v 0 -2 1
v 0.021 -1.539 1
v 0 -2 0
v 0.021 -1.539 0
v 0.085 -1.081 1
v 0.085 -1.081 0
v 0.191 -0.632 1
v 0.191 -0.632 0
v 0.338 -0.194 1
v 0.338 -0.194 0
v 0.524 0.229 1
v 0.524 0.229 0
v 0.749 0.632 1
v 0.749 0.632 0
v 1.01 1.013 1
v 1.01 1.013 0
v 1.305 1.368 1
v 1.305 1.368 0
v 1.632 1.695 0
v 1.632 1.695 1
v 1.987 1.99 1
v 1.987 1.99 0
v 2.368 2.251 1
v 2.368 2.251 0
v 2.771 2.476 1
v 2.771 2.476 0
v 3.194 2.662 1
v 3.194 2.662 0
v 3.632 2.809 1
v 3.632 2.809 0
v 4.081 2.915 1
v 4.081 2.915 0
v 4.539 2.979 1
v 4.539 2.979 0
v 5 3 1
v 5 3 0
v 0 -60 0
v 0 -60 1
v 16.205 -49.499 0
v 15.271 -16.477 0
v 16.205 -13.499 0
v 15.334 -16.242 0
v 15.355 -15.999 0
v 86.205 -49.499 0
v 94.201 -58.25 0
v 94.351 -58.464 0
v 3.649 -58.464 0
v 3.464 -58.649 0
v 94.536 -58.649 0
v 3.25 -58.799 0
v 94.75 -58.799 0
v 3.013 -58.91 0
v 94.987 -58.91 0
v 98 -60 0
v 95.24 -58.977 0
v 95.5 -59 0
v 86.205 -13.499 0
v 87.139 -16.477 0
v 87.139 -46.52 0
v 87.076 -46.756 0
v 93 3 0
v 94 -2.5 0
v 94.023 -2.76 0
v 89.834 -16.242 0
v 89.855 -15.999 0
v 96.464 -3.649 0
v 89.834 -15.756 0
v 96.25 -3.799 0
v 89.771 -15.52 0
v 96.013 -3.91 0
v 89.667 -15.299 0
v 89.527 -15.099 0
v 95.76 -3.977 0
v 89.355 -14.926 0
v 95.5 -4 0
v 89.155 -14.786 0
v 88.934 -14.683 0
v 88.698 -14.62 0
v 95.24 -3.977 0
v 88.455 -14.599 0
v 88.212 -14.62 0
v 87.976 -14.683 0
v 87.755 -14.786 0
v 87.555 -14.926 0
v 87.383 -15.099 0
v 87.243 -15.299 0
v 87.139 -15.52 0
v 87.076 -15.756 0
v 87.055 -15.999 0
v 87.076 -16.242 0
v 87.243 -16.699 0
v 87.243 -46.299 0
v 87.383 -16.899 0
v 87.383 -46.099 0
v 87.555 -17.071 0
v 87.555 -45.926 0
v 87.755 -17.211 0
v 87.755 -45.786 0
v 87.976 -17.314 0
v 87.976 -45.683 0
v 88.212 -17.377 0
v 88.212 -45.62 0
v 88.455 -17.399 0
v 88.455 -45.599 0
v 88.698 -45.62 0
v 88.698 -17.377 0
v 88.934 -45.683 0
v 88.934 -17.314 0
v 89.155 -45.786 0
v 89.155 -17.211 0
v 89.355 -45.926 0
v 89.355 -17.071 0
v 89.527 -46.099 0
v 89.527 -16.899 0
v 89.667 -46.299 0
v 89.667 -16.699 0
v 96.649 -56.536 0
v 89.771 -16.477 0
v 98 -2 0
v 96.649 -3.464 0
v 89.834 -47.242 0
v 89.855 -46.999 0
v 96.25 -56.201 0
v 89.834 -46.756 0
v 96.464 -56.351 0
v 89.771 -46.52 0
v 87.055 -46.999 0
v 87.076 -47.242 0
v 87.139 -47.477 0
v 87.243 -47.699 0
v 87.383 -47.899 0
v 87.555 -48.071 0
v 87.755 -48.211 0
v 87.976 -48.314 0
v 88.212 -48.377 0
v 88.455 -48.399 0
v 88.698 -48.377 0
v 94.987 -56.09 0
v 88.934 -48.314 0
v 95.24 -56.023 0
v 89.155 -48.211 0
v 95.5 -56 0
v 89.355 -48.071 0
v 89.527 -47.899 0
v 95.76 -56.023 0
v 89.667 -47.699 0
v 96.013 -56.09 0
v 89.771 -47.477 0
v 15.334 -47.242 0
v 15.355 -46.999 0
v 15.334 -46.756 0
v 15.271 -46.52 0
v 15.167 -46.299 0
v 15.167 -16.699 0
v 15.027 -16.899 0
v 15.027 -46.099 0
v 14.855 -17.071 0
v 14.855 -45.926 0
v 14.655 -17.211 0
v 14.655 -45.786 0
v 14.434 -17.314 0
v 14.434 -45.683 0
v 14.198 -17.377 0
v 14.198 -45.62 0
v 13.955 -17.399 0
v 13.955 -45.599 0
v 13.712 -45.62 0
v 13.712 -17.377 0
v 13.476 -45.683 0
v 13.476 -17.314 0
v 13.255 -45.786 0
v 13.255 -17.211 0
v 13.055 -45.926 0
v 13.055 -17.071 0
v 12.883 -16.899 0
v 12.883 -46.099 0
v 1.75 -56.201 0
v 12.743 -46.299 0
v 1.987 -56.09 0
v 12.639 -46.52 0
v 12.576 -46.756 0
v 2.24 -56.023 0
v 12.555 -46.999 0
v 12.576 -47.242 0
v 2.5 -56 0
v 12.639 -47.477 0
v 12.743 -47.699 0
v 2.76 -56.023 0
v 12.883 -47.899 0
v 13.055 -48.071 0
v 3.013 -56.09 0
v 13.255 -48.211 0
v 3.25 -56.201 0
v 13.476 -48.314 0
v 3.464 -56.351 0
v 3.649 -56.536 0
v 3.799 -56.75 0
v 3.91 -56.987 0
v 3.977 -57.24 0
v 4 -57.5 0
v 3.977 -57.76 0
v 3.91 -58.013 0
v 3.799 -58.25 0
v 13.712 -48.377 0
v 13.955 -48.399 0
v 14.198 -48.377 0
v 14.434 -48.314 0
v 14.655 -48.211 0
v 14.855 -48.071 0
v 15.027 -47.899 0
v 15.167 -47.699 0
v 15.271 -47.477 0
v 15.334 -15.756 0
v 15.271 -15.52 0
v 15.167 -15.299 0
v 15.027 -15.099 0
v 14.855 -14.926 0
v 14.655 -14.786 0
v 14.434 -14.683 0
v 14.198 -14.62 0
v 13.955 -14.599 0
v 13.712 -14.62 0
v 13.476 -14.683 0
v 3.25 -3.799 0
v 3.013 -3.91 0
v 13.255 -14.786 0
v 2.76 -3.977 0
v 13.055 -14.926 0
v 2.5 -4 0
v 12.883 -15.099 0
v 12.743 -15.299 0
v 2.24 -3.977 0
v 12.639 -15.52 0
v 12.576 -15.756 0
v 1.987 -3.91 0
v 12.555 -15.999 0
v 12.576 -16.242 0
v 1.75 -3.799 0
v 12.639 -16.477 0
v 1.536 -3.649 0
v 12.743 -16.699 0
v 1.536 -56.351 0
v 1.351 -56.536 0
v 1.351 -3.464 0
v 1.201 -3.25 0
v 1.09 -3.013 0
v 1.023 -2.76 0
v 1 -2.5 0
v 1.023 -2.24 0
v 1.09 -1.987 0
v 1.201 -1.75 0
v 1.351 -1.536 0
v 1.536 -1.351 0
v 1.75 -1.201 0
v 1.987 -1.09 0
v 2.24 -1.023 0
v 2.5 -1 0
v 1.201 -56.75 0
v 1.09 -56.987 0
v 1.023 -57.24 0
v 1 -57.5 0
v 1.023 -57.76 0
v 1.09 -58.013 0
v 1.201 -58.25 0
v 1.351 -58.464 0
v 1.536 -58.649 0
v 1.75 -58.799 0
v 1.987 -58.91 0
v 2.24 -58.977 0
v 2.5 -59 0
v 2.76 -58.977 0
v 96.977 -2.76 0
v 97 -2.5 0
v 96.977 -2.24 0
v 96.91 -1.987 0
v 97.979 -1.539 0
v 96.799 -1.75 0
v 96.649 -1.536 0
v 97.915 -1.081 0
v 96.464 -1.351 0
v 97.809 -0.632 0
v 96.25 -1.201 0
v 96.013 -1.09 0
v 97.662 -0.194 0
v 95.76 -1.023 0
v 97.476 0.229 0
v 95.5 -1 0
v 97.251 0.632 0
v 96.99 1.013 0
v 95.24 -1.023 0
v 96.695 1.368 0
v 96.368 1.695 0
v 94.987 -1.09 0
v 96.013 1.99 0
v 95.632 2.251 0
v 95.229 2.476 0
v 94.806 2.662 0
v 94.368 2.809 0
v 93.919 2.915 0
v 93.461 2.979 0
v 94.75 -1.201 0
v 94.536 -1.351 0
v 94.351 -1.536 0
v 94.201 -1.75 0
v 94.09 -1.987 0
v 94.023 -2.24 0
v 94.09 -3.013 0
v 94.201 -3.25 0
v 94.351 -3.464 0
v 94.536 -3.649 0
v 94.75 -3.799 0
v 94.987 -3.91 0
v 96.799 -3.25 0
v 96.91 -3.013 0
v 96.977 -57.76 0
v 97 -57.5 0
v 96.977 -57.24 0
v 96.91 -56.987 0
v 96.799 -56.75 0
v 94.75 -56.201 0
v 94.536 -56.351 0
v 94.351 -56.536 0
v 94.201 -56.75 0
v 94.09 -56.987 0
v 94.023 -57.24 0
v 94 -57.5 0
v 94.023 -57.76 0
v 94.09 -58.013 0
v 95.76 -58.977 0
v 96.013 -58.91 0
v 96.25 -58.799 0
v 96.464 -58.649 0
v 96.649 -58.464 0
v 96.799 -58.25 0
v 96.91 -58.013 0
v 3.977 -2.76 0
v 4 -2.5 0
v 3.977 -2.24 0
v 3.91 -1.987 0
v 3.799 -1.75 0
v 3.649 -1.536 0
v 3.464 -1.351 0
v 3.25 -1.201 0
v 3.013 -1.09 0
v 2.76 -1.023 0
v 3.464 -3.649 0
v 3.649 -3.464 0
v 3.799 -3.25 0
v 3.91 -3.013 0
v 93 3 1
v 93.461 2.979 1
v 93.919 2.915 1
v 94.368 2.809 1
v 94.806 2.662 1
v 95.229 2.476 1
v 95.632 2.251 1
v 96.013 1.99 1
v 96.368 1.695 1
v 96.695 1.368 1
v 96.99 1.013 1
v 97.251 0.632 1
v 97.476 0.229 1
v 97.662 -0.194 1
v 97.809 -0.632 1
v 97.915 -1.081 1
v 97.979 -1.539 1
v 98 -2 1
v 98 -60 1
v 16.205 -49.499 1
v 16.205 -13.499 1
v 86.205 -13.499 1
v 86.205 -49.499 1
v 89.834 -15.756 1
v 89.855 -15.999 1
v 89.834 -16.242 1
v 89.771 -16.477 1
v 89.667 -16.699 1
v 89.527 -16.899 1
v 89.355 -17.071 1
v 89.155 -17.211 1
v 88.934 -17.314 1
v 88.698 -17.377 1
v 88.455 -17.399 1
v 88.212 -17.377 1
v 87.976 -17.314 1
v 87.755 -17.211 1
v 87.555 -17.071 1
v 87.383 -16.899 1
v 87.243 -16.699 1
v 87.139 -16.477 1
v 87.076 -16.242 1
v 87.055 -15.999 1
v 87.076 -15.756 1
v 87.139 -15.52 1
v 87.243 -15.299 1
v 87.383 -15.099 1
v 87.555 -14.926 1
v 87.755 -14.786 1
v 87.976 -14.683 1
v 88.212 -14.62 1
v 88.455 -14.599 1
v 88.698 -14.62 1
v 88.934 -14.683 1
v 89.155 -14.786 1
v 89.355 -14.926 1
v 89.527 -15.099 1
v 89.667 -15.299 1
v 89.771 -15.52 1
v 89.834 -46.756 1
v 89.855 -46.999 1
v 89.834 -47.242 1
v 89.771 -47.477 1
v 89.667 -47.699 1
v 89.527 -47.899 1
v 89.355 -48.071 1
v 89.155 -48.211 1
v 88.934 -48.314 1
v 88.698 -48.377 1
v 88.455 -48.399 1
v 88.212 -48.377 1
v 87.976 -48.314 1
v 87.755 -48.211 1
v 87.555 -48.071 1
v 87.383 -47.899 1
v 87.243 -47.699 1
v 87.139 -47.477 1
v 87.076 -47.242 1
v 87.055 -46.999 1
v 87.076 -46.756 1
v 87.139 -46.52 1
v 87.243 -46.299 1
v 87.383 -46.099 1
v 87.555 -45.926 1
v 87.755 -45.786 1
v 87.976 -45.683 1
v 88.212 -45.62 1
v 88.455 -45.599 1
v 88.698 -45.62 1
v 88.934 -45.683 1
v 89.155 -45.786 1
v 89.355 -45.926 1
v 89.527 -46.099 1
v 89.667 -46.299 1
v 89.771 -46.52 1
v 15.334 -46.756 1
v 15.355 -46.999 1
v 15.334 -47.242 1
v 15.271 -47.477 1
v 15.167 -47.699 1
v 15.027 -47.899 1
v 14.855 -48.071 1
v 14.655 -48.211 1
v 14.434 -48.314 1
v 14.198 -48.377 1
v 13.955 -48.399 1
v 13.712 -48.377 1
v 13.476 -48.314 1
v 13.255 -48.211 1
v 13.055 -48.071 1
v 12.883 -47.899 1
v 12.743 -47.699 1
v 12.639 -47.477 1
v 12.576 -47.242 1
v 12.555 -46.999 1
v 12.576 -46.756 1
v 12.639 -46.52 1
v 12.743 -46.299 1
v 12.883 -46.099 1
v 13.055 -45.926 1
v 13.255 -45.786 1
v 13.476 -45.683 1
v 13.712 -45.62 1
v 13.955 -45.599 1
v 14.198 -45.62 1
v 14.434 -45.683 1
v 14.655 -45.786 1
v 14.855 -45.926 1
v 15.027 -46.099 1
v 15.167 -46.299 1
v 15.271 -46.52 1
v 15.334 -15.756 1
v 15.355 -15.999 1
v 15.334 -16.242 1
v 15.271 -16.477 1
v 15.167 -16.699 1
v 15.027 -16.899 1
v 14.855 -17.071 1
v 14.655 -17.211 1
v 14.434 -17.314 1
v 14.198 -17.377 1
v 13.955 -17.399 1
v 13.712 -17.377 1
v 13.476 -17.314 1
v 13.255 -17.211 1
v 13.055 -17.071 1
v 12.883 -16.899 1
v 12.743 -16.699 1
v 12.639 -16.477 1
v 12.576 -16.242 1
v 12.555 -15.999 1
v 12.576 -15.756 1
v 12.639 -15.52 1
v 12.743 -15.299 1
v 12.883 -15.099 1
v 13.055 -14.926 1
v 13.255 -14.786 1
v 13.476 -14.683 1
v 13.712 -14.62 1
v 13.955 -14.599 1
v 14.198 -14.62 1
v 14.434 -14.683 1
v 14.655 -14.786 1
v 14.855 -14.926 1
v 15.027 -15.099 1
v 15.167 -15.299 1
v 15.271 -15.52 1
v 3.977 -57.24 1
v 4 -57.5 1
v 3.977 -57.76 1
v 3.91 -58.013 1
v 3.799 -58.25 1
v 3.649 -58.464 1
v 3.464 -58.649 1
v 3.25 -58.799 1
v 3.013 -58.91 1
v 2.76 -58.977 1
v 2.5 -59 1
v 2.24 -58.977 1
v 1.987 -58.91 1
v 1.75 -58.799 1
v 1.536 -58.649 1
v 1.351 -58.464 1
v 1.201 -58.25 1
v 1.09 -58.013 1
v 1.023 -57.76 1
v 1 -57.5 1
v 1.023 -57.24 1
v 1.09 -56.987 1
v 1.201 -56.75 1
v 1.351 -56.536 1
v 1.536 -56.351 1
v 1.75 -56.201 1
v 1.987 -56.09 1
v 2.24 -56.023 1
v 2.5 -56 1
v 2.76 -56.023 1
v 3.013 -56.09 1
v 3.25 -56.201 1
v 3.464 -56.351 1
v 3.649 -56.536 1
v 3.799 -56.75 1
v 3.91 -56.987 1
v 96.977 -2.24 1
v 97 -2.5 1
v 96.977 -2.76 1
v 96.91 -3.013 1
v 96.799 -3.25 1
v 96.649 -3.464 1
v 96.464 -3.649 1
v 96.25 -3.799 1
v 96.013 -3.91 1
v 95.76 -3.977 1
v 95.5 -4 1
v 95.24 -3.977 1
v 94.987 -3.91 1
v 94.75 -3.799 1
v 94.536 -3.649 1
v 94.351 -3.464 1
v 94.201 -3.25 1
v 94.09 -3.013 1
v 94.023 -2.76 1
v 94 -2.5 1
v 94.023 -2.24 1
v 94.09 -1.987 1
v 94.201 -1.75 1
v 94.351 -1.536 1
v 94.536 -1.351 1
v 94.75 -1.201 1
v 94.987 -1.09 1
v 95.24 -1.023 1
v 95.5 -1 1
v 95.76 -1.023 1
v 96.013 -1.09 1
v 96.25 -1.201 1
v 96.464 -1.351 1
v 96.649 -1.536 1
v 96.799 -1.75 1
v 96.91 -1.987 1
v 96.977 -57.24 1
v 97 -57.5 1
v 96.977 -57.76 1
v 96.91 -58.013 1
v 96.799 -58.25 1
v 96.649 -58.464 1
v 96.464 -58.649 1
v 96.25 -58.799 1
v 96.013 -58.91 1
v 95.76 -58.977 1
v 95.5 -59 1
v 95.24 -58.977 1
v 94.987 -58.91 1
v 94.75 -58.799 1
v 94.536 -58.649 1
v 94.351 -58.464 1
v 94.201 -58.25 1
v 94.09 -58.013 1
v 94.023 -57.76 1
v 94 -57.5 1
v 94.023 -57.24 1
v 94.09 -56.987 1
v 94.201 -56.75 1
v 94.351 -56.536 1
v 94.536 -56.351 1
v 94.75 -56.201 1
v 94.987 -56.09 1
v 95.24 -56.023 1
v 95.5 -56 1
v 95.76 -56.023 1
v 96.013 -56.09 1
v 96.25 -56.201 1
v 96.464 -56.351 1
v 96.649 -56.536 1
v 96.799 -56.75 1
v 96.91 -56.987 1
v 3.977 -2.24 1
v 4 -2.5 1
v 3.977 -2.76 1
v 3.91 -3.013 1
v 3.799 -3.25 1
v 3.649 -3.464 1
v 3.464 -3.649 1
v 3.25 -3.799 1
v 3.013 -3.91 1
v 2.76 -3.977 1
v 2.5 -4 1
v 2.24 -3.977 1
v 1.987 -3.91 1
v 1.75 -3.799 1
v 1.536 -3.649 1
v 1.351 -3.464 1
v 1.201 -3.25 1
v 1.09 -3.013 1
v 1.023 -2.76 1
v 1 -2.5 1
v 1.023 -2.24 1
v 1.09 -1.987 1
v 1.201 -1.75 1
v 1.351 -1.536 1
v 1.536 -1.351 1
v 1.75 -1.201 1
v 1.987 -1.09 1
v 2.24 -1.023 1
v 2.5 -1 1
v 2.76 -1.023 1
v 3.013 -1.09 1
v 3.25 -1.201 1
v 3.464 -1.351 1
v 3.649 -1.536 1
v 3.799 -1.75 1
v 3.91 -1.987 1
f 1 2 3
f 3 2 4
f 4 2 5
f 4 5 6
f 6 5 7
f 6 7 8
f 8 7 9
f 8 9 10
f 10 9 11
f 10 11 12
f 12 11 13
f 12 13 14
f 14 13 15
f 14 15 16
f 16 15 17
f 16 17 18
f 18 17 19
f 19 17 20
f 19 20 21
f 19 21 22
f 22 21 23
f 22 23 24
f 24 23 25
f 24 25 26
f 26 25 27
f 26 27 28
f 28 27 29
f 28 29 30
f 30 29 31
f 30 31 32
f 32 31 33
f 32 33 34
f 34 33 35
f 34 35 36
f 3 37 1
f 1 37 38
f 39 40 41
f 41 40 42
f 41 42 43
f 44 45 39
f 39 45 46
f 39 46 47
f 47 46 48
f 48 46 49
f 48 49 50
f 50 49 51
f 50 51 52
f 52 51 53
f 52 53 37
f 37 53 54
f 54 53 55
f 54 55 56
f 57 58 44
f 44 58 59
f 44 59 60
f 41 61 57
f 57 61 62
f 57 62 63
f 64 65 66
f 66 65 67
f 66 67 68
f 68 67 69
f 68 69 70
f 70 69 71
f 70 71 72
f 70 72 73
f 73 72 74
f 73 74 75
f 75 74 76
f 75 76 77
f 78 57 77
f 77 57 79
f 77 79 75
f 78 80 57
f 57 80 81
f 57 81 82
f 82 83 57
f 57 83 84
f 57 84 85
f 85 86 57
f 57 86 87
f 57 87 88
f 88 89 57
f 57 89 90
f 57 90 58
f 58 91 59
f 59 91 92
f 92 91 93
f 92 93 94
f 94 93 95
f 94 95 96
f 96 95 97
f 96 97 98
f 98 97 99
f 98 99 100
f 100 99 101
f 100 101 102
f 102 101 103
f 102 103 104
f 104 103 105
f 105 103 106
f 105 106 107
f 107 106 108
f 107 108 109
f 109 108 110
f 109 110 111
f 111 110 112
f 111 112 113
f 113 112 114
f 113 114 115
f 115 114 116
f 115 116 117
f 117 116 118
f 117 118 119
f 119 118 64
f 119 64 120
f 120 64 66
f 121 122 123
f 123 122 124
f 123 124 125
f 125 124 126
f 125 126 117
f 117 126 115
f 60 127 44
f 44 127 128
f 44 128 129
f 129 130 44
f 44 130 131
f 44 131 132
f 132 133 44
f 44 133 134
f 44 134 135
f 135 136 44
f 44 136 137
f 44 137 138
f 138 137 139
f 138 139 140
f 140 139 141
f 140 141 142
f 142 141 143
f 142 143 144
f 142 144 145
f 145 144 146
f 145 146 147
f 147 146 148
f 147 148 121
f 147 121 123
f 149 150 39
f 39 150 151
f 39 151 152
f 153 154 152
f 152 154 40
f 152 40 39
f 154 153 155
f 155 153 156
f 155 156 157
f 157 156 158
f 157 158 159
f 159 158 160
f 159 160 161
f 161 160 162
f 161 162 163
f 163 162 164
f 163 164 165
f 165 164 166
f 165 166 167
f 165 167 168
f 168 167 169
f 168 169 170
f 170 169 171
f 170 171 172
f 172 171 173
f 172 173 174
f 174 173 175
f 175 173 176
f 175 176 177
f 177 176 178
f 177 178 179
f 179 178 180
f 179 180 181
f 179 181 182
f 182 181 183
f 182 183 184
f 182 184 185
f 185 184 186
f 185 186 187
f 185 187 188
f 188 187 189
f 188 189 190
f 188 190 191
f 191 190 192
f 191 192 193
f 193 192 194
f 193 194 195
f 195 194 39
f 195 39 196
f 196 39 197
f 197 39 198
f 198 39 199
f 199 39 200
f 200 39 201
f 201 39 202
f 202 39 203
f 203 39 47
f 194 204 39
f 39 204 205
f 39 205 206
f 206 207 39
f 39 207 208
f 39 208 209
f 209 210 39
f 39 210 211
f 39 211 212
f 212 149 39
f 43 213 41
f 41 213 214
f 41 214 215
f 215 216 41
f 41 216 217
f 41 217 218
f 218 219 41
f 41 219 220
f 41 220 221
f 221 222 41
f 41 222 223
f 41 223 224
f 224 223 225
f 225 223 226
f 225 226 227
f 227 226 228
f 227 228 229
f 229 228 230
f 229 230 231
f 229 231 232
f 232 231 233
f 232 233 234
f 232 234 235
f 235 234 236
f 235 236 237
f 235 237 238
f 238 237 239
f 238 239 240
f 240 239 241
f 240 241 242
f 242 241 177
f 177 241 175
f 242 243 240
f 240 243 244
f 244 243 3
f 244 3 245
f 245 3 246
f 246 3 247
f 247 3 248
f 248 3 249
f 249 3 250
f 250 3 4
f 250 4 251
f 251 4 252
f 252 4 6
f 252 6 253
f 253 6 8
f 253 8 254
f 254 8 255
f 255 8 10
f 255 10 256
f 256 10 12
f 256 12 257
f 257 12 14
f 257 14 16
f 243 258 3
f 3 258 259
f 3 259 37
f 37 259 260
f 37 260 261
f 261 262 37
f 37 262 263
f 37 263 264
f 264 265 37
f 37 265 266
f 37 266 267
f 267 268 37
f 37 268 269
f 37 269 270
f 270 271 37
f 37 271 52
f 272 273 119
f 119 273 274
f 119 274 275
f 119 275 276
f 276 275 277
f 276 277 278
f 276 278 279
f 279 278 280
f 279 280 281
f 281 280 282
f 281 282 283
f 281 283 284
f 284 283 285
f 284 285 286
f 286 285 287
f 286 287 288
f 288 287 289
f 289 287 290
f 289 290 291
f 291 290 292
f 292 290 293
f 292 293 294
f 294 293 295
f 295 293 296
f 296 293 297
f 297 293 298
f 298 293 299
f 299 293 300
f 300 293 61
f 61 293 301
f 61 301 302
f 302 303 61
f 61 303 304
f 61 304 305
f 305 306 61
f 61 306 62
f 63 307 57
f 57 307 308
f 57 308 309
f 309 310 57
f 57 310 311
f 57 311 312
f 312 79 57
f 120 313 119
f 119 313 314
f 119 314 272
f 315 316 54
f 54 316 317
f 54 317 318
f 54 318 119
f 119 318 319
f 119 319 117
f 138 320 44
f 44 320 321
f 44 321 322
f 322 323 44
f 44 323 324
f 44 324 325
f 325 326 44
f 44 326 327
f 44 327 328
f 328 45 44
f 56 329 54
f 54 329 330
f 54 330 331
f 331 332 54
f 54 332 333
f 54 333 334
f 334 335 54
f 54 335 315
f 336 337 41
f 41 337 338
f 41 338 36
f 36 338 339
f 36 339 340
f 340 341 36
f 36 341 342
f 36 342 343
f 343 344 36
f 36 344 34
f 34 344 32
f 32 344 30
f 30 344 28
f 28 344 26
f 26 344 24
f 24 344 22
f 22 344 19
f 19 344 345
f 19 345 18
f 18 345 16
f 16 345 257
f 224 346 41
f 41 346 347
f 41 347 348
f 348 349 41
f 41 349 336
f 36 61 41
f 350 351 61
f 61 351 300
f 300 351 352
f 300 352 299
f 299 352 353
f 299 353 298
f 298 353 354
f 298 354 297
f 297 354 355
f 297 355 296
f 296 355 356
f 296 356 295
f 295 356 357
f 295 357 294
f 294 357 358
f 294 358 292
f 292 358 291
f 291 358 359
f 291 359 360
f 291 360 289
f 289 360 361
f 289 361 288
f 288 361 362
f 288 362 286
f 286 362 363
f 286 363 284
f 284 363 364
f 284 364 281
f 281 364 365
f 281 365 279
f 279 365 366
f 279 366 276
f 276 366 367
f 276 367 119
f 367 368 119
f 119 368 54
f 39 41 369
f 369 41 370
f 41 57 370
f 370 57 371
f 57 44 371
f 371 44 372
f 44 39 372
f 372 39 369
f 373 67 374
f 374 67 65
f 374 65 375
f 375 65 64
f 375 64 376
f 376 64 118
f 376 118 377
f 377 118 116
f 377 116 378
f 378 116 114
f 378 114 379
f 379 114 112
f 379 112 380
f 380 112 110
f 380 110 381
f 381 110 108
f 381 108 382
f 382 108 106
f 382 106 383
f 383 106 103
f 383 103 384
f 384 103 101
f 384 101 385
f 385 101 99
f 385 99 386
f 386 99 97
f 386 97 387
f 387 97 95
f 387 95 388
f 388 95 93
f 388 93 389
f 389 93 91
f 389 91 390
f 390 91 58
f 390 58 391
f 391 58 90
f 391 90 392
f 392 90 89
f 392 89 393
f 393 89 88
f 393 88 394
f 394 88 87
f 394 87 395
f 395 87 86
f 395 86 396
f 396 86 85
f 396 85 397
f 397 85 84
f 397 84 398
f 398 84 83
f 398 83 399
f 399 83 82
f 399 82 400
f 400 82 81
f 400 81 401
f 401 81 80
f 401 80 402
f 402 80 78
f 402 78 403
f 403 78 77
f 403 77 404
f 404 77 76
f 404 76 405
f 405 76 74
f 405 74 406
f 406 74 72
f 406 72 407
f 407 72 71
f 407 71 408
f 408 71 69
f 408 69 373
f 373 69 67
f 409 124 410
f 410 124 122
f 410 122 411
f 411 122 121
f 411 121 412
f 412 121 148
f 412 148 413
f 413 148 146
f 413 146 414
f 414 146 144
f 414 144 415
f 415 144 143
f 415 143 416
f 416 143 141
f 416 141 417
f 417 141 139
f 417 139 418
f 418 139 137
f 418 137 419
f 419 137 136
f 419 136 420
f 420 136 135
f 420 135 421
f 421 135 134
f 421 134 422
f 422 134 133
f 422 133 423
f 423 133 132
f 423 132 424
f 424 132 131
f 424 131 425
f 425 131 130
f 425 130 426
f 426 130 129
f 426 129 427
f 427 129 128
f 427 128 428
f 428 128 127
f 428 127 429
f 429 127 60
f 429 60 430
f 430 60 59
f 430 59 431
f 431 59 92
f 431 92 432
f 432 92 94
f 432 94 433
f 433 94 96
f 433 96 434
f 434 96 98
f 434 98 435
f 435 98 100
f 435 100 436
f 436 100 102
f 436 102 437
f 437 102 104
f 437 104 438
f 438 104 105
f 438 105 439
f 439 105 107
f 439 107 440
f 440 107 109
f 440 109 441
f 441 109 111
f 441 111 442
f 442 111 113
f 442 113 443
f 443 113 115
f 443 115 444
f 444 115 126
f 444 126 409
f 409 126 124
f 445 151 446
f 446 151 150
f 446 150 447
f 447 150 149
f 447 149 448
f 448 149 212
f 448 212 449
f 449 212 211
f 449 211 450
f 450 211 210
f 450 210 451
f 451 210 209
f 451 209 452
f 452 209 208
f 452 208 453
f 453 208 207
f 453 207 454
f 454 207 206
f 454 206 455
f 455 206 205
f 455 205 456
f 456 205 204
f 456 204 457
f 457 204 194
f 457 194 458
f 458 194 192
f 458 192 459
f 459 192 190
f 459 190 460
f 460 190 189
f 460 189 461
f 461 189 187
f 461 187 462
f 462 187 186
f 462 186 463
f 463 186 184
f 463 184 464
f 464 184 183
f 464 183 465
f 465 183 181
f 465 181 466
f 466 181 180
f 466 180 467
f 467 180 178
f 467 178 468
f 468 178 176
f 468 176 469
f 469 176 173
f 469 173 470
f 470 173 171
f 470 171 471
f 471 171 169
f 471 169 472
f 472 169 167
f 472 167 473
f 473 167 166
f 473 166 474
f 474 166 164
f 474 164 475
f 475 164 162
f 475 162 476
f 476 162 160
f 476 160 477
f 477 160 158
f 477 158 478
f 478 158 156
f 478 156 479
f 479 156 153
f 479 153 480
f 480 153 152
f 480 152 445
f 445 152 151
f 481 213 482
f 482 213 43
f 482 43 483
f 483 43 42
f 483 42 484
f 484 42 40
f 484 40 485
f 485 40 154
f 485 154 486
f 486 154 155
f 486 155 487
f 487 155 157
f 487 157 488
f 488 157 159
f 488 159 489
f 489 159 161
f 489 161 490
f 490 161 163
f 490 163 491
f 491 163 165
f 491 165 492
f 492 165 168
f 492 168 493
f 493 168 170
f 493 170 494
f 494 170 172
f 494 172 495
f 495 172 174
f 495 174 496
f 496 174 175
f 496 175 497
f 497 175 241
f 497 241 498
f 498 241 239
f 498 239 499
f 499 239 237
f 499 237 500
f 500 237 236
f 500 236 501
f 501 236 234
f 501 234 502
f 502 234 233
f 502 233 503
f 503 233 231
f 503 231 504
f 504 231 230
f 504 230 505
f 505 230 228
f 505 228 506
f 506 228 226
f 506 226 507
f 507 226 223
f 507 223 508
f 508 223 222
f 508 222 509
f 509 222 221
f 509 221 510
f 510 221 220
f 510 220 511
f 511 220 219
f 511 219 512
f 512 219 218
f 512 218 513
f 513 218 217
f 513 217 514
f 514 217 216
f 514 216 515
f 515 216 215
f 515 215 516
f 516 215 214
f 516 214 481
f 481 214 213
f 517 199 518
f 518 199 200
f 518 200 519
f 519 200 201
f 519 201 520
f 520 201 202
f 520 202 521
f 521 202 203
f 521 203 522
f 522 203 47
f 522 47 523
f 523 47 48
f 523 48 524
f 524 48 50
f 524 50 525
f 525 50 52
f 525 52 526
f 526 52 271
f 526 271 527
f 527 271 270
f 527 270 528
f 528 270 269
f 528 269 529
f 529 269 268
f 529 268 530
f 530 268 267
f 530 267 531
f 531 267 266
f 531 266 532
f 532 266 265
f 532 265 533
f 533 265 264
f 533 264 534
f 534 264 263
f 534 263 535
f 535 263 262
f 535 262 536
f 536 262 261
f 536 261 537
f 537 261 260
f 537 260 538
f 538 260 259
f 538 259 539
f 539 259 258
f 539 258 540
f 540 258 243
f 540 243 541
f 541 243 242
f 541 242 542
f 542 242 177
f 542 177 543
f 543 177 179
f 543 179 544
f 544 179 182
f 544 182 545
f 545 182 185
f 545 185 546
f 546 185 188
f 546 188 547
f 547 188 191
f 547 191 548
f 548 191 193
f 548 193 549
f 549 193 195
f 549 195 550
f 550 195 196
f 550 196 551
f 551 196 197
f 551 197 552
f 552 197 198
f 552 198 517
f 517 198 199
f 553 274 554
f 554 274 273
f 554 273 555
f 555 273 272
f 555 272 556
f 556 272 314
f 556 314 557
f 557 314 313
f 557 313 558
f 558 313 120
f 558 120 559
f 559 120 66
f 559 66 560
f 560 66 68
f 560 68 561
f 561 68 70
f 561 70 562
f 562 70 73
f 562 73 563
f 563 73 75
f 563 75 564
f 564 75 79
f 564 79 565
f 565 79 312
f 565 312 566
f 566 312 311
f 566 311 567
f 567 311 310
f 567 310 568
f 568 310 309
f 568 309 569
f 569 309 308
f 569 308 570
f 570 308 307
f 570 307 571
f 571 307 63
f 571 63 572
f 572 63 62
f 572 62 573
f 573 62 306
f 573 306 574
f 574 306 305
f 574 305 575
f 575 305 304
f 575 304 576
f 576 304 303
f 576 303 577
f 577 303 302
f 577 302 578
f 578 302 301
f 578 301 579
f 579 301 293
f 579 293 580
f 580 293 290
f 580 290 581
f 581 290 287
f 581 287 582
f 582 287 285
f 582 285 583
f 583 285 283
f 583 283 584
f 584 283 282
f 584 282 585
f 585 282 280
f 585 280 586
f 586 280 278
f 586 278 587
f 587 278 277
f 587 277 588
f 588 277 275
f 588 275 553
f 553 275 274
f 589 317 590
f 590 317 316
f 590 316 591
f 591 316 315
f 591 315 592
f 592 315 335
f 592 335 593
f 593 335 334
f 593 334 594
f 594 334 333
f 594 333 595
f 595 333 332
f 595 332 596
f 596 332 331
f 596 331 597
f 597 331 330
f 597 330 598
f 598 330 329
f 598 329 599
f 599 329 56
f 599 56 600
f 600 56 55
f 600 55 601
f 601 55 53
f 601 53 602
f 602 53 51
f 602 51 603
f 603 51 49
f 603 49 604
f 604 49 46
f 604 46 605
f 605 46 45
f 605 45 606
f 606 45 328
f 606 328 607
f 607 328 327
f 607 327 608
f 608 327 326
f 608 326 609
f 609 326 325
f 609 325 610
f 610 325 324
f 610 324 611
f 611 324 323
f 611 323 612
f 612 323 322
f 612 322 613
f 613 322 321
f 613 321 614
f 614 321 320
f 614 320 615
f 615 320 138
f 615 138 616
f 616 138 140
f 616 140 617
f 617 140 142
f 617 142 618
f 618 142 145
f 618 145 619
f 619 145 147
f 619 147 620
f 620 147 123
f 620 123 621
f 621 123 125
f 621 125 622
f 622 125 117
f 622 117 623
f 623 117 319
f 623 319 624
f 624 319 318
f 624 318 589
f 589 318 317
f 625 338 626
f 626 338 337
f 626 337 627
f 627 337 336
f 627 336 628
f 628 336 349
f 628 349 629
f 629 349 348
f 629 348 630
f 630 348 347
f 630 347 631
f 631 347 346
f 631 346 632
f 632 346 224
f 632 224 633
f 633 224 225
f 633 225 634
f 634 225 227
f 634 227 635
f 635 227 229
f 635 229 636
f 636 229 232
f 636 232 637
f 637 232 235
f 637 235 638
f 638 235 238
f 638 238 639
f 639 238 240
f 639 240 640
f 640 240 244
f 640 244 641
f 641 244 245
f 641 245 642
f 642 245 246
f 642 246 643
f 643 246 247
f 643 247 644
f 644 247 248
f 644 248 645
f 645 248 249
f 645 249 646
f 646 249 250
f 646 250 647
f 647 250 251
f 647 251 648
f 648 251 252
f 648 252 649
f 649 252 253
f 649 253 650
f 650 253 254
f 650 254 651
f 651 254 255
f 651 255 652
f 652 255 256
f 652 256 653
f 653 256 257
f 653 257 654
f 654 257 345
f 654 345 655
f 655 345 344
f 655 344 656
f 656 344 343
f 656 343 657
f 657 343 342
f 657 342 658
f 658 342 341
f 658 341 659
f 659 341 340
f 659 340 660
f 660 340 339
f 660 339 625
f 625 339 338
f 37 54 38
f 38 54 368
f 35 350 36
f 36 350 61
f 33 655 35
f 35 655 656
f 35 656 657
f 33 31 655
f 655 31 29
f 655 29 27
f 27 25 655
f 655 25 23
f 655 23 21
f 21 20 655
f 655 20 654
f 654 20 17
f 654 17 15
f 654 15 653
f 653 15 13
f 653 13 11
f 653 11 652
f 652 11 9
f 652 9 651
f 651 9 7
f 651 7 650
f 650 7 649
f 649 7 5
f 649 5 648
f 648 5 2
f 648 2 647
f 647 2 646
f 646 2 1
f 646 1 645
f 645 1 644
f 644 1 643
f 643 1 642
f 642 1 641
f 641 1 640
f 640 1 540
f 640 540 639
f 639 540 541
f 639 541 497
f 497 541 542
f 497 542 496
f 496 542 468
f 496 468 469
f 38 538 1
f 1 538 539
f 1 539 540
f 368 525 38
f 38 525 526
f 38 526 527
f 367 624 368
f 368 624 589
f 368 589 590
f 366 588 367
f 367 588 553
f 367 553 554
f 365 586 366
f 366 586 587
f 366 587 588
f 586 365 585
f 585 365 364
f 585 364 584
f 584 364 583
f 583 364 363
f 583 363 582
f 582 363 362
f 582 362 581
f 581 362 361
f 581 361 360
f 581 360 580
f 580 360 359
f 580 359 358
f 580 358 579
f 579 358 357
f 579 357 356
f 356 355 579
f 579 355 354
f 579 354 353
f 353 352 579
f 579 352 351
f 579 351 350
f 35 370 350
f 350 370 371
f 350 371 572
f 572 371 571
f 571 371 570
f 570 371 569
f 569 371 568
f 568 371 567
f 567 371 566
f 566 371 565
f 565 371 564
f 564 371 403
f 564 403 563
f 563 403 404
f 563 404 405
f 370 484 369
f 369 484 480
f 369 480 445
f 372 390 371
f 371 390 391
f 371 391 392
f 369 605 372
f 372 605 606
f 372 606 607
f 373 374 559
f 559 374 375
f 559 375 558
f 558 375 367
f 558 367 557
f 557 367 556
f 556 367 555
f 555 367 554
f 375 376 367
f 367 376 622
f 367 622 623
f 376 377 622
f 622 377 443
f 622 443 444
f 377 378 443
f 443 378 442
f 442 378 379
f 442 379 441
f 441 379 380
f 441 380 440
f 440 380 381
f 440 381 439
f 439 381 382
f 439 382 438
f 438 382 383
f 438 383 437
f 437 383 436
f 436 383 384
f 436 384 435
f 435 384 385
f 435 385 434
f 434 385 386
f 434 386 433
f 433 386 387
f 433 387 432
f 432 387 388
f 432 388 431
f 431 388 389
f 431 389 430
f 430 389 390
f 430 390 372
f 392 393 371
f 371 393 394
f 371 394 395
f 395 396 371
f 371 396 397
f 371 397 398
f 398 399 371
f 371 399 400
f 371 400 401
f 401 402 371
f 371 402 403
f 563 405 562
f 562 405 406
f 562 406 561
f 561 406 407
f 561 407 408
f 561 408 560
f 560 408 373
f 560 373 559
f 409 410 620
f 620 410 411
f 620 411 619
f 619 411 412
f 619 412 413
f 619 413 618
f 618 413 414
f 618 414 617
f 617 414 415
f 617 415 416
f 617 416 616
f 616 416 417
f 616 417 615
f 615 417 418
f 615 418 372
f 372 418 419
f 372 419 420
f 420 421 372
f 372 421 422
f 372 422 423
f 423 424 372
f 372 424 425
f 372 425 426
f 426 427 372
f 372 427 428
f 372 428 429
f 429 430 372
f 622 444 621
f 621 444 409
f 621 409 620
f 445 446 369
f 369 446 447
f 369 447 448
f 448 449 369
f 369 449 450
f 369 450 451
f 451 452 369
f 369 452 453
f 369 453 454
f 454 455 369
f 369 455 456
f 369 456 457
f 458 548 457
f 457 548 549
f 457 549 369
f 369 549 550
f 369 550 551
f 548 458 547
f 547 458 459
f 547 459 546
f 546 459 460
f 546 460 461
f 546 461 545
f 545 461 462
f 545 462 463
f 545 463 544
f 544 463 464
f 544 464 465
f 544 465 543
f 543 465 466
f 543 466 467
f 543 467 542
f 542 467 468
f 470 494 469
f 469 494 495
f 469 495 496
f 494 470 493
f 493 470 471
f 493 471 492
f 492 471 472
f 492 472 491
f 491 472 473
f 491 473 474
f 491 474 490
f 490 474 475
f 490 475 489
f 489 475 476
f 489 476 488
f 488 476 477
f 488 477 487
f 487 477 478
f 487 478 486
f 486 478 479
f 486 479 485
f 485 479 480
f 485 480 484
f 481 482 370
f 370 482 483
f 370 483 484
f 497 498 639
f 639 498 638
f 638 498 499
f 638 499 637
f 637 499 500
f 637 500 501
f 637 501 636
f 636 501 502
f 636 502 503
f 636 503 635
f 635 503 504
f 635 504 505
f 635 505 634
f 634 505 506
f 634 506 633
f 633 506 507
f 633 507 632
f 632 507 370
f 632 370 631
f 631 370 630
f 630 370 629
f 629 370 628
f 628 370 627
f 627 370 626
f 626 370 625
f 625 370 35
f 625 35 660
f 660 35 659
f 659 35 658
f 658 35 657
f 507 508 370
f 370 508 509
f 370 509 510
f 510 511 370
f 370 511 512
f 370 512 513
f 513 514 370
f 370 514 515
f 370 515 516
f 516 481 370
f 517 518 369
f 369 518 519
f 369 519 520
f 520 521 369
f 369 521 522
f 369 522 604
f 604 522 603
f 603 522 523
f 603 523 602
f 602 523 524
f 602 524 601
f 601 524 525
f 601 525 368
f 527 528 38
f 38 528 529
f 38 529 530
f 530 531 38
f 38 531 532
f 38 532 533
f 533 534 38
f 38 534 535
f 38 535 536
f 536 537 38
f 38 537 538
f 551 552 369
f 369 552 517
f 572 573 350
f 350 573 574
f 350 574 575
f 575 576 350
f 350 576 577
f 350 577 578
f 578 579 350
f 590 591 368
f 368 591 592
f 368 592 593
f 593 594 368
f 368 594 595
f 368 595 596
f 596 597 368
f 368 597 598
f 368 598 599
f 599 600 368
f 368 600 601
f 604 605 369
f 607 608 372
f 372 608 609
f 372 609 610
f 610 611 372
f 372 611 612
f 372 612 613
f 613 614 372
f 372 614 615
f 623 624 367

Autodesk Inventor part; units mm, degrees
ref_plane "YZ Plane" through (0, 0, 0) normal (1, 0, 0) x (0, 1, 0)
ref_plane "XZ Plane" through (0, 0, 0) normal (0, 1, 0) x (-1, 0, 0)
ref_plane "XY Plane" through (0, 0, 0) normal (0, 0, 1) x (1, 0, 0)
ref_plane "Work Plane1" through (0, 0, 0) normal (0, 0, 1) x (1, 0, 0)
sketch "Sketch1" plane through (0, 0, 0) normal (0, 0, 1) x (1, 0, 0)
  circle A0 centre (2.5, -2.5) radius 1.5 projected
  circle A1 centre (95.5, -57.5) radius 1.5 projected
  circle A2 centre (95.5, -2.5) radius 1.5 projected
  circle A3 centre (2.5, -57.5) radius 1.5 projected
  line L0 (50.7939, -5.85) -> (93.3881, -5.85) projected
  line L1 (93.3881, -5.85) -> (93.3881, -53.8601) projected
  line L2 (93.3881, -53.8601) -> (4, -53.8601) projected
  line L3 (4, -53.8601) -> (4, -5.85) projected
  line L4 (4, -5.85) -> (5.9071, -5.85) projected
  line L5 (5.9071, -5.85) -> (5.9071, 0) projected
  line L6 (5.9071, 0) -> (50.7939, 0) projected
  line L7 (50.7939, 0) -> (50.7939, -5.85) projected
  line L8 (98, 3) -> (98, -60) projected
  line L9 (0, 3) -> (98, 3) projected
  line L10 (0, -60) -> (0, 3) projected
  line L11 (0, -60) -> (98, -60) projected
  line L12 (16.205, -49.4986) -> (86.205, -49.4986)
  line L13 (86.205, -49.4986) -> (86.205, -13.4986)
  line L14 (86.205, -13.4986) -> (16.205, -13.4986)
  line L15 (16.205, -13.4986) -> (16.205, -49.4986)
  line L16 (88.455, -46.9986) -> (13.955, -46.9986) construction
  line L17 (13.955, -46.9986) -> (13.955, -15.9986) construction
  line L18 (13.955, -15.9986) -> (88.455, -15.9986) construction
  line L19 (88.455, -15.9986) -> (88.455, -46.9986) construction
  line L20 (88.455, -46.9986) -> (13.955, -15.9986) construction
  line L21 (13.955, -46.9986) -> (88.455, -15.9986) construction
  circle A4 centre (13.955, -15.9986) radius 1.4
  circle A5 centre (13.955, -46.9986) radius 1.4
  circle A6 centre (88.455, -15.9986) radius 1.4 construction
  circle A7 centre (88.455, -46.9986) radius 1.4
  circle A8 centre (88.455, -15.9986) radius 1.4
  point P0 (0, 0)
  point P1 (51.205, -31.4986)
  dimension "d0" = 70
  dimension "d1" = 36
  dimension "d2" = 74.5
  dimension "d3" = 31
  dimension "d4" = 2.8
  dimension "d5" = 2.8
  dimension "d6" = 2.8
  dimension "d7" = 2.8
extrude "Extrusion1" add sketch "Sketch1" along normal blind 1 contours L0 L1 L2 L3 L4 L5 L6 L7 | L8 L11 L10 L9
fillet "Fillet1" radius 5 2 edges at (98, 3, 0.5) (0, 3, 0.5)
sketch "Sketch2" plane through (0, 0, 1) normal (0, 0, 1) x (1, 0, 0)
  arc A0 (5, 3) -> (0, -2) centre (5, -2) ccw projected
  line L0 (0, -2) -> (0, -60) projected
  line L1 (0, -60) -> (98, -60) projected
  line L2 (98, -60) -> (98, -2) projected
  arc A1 (98, -2) -> (93, 3) centre (93, -2) ccw projected
  line L3 (93, 3) -> (5, 3) projected
  line L4 (16.205, -49.4986) -> (16.205, -13.4986) projected
  line L5 (16.205, -13.4986) -> (86.205, -13.4986) projected
  line L6 (86.205, -13.4986) -> (86.205, -49.4986) projected
  line L7 (86.205, -49.4986) -> (16.205, -49.4986) projected
  circle A2 centre (88.455, -15.9986) radius 1.4 projected
  circle A3 centre (88.455, -46.9986) radius 1.4 projected
  circle A4 centre (13.955, -46.9986) radius 1.4 projected
  circle A5 centre (13.955, -15.9986) radius 1.4 projected
  circle A6 centre (2.5, -57.5) radius 1.5 projected
  circle A7 centre (95.5, -2.5) radius 1.5 projected
  circle A8 centre (95.5, -57.5) radius 1.5 projected
  circle A9 centre (2.5, -2.5) radius 1.5 projected
  line L8 (9.9881, -3.9779) -> (87.4866, -3.9779) construction
  line L9 (87.4866, -3.9779) -> (87.4866, -10.4067) construction
  line L10 (87.4866, -10.4067) -> (9.9881, -10.4067) construction
  line L11 (9.9881, -10.4067) -> (9.9881, -3.9779) construction
  point P0 (0, 0)
properties part number "04_Adapterplate_Display"
